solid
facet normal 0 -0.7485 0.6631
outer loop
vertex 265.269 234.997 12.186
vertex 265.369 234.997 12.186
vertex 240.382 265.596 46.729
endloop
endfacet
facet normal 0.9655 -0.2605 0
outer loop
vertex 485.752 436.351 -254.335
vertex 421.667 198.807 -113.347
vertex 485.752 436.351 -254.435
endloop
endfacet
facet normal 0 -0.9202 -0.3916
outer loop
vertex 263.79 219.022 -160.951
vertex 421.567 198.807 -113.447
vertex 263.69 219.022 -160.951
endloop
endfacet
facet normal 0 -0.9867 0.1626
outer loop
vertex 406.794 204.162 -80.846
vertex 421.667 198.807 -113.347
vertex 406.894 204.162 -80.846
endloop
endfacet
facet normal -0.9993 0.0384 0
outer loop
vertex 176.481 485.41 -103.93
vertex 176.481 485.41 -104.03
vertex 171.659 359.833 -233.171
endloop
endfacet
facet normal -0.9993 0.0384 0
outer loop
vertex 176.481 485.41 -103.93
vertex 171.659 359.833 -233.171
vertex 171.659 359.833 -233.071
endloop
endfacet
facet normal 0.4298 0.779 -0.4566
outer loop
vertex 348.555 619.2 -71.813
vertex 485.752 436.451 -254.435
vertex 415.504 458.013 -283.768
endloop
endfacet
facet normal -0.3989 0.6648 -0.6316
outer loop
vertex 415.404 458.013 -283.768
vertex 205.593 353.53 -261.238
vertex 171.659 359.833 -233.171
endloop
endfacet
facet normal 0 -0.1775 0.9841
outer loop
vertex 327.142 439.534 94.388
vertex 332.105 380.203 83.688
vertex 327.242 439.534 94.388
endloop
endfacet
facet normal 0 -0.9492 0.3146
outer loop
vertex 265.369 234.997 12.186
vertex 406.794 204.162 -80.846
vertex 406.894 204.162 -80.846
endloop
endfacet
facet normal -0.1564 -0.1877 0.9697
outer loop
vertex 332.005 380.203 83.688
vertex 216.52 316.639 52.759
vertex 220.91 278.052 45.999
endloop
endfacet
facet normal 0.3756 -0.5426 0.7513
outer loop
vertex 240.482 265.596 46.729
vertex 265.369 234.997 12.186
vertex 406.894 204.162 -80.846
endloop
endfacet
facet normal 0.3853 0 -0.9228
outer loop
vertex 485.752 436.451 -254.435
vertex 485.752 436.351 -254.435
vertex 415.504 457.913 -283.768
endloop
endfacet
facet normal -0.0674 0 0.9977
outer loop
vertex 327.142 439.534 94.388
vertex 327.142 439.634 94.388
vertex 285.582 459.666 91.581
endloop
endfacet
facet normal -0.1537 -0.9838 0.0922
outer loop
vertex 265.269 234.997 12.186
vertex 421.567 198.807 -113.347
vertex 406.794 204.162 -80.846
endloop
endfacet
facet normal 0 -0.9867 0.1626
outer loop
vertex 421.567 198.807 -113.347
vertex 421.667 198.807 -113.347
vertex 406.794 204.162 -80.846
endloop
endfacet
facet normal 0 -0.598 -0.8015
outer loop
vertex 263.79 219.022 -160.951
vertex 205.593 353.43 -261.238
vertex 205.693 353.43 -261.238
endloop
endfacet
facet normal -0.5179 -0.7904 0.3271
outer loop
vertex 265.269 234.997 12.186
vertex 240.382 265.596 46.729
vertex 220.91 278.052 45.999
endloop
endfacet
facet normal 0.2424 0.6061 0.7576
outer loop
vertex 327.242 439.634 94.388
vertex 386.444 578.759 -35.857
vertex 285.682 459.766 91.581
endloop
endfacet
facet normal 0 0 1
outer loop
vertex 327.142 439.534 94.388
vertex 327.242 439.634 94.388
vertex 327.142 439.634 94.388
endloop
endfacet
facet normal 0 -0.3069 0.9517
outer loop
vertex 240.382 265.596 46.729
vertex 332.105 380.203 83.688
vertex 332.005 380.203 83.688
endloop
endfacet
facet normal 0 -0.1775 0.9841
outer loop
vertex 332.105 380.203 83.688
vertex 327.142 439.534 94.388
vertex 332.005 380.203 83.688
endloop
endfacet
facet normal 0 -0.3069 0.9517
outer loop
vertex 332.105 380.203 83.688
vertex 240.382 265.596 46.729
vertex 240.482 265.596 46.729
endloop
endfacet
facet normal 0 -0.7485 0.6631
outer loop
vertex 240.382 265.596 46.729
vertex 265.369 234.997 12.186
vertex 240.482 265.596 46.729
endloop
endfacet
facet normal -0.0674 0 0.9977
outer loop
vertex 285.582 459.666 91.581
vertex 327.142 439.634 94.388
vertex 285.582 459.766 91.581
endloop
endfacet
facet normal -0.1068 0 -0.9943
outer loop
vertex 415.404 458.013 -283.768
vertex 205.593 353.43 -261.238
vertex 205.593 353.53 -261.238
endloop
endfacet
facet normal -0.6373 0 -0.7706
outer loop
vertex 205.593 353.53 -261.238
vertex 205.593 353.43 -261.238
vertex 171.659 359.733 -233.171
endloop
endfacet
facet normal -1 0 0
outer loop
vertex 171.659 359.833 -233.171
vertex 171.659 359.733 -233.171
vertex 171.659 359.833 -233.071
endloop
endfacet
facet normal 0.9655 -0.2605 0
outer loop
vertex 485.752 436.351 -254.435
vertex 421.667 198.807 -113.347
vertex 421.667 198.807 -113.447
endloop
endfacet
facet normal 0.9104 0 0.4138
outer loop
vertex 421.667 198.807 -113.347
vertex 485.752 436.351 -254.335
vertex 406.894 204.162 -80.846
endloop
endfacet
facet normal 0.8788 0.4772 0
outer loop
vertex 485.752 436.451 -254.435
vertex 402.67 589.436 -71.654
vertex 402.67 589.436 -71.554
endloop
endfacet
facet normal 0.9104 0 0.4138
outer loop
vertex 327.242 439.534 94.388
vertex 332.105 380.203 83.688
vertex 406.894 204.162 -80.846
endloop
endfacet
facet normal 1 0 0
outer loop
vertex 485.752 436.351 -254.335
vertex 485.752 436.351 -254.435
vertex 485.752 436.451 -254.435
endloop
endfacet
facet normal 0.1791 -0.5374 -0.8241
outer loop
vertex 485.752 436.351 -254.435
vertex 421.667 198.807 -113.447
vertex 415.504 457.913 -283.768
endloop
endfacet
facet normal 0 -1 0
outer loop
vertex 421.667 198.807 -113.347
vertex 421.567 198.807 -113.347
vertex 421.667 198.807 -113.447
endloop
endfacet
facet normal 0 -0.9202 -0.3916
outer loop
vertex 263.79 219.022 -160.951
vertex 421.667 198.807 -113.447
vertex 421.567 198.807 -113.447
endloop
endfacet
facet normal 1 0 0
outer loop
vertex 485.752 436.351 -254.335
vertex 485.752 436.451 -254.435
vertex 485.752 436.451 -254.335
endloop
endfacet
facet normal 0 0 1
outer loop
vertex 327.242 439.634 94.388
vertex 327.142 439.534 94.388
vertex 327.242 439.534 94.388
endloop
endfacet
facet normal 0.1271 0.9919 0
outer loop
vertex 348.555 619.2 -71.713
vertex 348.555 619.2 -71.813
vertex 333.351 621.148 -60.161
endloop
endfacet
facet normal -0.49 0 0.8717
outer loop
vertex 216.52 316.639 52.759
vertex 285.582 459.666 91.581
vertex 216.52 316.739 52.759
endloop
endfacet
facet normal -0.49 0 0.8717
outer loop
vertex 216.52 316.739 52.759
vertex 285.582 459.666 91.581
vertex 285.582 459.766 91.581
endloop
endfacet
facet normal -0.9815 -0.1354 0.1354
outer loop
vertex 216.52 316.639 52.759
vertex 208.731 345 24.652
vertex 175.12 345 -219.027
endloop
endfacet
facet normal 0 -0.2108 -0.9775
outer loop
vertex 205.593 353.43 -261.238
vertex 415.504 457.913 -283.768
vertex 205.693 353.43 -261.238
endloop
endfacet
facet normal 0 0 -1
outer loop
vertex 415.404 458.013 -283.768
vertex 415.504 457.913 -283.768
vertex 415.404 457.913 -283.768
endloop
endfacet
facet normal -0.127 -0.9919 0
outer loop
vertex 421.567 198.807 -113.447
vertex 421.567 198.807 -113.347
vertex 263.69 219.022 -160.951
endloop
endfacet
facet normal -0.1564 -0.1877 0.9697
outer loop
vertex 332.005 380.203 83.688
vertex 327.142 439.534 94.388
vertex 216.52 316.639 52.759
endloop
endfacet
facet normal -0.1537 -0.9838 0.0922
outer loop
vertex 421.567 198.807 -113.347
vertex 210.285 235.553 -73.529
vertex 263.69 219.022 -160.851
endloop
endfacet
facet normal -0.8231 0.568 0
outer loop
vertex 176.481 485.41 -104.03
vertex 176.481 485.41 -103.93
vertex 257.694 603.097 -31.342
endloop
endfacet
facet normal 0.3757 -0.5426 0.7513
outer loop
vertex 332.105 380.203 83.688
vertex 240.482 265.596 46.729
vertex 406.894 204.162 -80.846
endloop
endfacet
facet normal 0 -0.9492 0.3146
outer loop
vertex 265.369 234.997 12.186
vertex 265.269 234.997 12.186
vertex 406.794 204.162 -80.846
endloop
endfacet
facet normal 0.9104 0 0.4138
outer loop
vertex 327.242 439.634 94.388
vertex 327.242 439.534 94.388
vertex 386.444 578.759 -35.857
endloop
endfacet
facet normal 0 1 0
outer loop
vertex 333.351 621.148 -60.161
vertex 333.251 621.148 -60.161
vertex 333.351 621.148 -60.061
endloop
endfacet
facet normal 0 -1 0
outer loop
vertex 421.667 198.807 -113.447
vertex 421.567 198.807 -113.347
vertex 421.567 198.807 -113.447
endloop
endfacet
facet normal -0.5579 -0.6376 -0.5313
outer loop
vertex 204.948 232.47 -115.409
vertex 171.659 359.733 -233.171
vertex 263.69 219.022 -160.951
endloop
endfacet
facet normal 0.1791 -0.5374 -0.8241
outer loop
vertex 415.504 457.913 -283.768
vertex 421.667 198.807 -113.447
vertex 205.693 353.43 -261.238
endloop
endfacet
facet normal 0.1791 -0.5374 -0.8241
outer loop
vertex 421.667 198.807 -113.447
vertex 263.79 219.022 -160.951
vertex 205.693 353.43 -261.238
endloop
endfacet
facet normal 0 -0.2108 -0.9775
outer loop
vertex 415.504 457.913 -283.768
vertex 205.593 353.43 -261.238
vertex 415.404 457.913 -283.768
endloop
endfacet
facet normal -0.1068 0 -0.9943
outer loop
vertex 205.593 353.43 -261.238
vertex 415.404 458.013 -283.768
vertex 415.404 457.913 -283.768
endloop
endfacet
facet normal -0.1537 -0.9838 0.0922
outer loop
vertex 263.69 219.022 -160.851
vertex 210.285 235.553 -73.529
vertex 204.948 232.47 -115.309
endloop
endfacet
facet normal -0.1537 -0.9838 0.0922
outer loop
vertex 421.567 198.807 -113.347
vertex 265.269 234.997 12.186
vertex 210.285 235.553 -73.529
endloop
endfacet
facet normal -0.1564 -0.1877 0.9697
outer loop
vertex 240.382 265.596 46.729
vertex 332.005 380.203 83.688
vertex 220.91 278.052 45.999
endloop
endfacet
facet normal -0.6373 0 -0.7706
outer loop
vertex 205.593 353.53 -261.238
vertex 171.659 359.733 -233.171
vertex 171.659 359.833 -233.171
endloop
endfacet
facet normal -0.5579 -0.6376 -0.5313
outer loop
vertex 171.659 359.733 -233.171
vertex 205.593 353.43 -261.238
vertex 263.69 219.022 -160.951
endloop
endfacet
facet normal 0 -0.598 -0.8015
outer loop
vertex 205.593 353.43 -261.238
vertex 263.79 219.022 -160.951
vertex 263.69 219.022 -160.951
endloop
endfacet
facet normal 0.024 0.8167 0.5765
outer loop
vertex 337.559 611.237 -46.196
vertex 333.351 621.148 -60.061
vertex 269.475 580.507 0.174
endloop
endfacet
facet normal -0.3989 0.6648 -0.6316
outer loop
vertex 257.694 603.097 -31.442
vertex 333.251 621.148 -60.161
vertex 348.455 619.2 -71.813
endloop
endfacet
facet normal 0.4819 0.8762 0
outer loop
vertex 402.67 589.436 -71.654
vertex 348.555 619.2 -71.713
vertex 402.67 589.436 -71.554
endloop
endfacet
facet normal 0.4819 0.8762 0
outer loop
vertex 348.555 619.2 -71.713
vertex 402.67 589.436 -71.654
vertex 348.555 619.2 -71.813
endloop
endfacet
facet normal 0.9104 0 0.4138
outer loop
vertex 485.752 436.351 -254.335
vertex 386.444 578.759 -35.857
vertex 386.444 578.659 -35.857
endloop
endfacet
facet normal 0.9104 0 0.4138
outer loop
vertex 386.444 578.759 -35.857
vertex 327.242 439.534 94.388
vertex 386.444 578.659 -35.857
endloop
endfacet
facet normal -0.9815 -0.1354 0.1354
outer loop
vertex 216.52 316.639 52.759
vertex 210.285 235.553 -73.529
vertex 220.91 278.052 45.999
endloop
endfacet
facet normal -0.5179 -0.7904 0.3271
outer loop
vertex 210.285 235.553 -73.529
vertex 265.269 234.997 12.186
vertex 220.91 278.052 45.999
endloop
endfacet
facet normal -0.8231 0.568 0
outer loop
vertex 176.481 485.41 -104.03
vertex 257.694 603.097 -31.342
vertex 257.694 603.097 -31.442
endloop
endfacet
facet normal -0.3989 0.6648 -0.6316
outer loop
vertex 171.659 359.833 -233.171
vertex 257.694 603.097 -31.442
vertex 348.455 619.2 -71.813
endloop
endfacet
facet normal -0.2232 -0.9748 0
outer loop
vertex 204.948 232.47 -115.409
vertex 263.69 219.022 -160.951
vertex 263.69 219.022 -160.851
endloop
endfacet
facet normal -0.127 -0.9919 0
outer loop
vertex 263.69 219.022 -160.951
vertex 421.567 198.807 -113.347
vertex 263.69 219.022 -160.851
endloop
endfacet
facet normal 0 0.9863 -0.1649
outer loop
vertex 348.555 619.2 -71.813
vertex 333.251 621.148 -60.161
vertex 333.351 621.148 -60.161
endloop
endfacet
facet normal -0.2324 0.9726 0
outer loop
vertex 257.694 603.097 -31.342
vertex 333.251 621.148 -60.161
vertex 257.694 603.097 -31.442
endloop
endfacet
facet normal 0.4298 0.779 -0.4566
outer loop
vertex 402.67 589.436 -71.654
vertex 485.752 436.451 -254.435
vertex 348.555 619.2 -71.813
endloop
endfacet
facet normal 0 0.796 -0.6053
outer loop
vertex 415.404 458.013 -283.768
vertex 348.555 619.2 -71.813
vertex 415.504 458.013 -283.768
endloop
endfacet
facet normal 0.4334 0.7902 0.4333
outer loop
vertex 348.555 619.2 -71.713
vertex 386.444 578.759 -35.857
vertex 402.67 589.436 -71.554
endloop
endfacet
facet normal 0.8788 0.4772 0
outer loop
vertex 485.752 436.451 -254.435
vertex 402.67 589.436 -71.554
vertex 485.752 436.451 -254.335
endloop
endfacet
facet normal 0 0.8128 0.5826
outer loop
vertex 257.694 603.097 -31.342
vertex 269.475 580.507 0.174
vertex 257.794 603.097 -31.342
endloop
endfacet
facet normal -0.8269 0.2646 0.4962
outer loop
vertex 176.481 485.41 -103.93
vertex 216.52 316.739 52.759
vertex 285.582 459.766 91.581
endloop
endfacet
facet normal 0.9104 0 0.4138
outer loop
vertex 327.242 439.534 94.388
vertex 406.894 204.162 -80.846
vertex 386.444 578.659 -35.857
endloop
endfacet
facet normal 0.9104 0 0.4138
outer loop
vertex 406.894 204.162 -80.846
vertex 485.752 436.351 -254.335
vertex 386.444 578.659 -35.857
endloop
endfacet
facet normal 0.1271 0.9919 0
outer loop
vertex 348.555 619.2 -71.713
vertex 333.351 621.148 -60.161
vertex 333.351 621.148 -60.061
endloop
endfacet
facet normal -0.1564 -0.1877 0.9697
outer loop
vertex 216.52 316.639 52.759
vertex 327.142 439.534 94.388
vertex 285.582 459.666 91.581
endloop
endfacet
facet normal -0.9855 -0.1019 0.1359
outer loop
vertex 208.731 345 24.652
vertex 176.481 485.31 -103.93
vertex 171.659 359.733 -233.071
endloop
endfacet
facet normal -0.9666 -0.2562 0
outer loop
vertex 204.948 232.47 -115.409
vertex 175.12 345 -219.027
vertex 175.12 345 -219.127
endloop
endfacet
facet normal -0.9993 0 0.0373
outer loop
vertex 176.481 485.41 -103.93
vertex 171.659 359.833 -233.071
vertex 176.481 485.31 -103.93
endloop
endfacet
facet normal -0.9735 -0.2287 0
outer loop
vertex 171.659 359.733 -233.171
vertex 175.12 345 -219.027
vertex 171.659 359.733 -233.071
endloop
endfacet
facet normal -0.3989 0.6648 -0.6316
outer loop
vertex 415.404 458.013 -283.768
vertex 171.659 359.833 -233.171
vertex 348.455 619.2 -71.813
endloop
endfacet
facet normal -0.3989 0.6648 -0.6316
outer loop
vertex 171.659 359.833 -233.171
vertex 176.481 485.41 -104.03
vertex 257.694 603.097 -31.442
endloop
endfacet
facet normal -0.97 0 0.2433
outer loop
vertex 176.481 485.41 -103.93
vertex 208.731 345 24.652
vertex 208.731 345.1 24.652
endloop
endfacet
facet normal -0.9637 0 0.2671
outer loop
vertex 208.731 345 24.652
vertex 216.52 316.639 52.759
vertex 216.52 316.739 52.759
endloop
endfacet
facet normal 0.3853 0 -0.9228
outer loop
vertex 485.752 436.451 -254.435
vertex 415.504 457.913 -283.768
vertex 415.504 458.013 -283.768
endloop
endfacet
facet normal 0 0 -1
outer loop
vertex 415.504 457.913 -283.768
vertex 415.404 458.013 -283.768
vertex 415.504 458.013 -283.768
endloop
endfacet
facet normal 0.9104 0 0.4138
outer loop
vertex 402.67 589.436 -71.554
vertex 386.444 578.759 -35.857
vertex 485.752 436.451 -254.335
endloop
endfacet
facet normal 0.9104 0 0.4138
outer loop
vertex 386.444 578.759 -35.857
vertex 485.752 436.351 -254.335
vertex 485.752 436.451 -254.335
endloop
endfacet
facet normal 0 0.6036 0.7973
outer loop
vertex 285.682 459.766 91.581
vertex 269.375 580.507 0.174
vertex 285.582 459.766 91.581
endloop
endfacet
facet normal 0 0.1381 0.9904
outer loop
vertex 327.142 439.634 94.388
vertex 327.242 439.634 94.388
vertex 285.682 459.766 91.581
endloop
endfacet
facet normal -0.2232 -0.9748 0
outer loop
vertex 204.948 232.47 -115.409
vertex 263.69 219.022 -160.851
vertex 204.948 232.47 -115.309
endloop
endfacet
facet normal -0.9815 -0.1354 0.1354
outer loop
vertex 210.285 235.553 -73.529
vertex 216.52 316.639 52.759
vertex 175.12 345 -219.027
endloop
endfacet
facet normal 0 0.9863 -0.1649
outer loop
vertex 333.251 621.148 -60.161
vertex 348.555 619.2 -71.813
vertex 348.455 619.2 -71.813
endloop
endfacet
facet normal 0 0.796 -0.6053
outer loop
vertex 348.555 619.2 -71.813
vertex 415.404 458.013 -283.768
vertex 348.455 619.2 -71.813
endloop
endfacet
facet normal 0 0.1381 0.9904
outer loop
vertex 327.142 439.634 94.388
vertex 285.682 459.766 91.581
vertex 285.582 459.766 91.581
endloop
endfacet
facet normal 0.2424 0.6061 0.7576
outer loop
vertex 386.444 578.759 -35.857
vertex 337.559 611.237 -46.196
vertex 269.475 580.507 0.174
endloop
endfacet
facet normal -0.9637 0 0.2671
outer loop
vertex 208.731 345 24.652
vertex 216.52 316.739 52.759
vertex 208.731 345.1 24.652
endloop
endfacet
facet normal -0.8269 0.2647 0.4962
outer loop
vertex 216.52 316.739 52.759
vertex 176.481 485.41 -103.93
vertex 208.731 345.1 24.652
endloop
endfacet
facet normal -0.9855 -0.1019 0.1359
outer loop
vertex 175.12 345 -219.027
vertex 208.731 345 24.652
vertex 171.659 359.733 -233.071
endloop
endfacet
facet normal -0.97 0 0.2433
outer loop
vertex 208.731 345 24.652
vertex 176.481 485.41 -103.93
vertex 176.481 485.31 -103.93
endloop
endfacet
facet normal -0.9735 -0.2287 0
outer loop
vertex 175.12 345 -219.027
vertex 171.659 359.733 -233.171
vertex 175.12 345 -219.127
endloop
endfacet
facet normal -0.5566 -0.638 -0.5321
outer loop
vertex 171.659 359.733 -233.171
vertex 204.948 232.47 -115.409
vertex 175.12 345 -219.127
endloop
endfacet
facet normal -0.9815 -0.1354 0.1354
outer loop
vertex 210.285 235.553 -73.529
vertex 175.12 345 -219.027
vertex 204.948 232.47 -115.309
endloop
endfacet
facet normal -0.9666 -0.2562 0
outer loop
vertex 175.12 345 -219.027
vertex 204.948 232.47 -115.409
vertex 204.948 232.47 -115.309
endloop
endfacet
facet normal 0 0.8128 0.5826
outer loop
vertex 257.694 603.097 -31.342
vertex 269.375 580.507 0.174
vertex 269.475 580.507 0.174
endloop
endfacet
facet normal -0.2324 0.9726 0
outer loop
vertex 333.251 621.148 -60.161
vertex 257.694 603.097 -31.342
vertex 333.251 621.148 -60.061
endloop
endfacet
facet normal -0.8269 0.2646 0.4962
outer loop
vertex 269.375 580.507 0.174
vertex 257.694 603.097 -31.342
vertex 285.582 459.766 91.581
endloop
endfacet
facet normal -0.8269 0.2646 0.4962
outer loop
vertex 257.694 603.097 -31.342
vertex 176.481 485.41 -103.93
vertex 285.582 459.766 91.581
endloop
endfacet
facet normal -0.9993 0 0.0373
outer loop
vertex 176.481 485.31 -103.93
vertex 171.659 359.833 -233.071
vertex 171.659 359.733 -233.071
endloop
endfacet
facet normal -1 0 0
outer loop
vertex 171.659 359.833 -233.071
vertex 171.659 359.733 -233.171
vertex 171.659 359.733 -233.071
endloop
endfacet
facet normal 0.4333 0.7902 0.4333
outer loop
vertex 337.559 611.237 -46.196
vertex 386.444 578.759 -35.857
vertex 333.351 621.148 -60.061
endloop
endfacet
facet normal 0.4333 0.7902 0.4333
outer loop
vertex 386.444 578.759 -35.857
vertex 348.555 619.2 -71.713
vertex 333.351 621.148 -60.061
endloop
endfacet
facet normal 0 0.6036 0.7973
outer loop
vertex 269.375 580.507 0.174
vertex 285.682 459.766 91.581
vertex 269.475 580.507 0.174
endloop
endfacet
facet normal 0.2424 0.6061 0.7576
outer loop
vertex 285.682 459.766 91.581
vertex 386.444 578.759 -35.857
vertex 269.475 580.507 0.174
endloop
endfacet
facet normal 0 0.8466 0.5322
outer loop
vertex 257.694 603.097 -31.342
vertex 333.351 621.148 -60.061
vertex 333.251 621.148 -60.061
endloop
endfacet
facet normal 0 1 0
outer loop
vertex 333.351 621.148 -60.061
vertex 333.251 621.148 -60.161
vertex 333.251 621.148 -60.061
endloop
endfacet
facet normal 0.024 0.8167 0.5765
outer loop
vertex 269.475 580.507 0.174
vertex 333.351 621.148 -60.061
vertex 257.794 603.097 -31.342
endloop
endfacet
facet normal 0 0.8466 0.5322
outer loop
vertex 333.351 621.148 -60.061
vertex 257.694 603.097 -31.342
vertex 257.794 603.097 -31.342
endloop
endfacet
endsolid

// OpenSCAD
hull(){ translate([265.268875611,234.997284085,12.0858229223])cube(0.1,0.1,0.1);
translate([240.381771744,265.596182283,46.6285791101])cube(0.1,0.1,0.1);
translate([257.694182244,602.997100376,-31.4414831267])cube(0.1,0.1,0.1);
translate([176.481013599,485.309875901,-104.030244482])cube(0.1,0.1,0.1);
translate([406.793819411,204.162240464,-80.946402704])cube(0.1,0.1,0.1);
translate([421.56665984,198.807085808,-113.446651649])cube(0.1,0.1,0.1);
translate([332.005208333,380.203125,83.5885416667])cube(0.1,0.1,0.1);
translate([220.909948029,278.051556823,45.898680035])cube(0.1,0.1,0.1);
translate([210.285227441,235.55267447,-73.6294265817])cube(0.1,0.1,0.1);
translate([208.731343284,345.0,24.552238806])cube(0.1,0.1,0.1);
translate([216.520013511,316.639081236,52.6591791927])cube(0.1,0.1,0.1);
translate([205.593054164,353.429561201,-261.238180313])cube(0.1,0.1,0.1);
translate([263.690444361,219.021710069,-160.951018662])cube(0.1,0.1,0.1);
translate([204.947757161,232.469825257,-115.408935327])cube(0.1,0.1,0.1);
translate([171.6591854,359.732698039,-233.171382317])cube(0.1,0.1,0.1);
translate([175.120481928,345.0,-219.126506024])cube(0.1,0.1,0.1);
translate([415.404342943,457.912766754,-283.768251591])cube(0.1,0.1,0.1);
translate([485.652191928,436.350791415,-254.434822242])cube(0.1,0.1,0.1);
translate([327.142038946,439.533791523,94.2875143184])cube(0.1,0.1,0.1);
translate([269.374893108,580.407046349,0.0743971267317])cube(0.1,0.1,0.1);
translate([285.581709704,459.666262702,91.4808427333])cube(0.1,0.1,0.1);
translate([402.570093458,589.336448598,-71.6542056075])cube(0.1,0.1,0.1);
translate([386.344137274,578.658722593,-35.9571020019])cube(0.1,0.1,0.1);
translate([337.458582765,611.13671168,-46.296115829])cube(0.1,0.1,0.1);
translate([333.250927988,621.047512992,-60.1610987379])cube(0.1,0.1,0.1);
translate([348.45452226,619.100012757,-71.8133690522])cube(0.1,0.1,0.1); }
